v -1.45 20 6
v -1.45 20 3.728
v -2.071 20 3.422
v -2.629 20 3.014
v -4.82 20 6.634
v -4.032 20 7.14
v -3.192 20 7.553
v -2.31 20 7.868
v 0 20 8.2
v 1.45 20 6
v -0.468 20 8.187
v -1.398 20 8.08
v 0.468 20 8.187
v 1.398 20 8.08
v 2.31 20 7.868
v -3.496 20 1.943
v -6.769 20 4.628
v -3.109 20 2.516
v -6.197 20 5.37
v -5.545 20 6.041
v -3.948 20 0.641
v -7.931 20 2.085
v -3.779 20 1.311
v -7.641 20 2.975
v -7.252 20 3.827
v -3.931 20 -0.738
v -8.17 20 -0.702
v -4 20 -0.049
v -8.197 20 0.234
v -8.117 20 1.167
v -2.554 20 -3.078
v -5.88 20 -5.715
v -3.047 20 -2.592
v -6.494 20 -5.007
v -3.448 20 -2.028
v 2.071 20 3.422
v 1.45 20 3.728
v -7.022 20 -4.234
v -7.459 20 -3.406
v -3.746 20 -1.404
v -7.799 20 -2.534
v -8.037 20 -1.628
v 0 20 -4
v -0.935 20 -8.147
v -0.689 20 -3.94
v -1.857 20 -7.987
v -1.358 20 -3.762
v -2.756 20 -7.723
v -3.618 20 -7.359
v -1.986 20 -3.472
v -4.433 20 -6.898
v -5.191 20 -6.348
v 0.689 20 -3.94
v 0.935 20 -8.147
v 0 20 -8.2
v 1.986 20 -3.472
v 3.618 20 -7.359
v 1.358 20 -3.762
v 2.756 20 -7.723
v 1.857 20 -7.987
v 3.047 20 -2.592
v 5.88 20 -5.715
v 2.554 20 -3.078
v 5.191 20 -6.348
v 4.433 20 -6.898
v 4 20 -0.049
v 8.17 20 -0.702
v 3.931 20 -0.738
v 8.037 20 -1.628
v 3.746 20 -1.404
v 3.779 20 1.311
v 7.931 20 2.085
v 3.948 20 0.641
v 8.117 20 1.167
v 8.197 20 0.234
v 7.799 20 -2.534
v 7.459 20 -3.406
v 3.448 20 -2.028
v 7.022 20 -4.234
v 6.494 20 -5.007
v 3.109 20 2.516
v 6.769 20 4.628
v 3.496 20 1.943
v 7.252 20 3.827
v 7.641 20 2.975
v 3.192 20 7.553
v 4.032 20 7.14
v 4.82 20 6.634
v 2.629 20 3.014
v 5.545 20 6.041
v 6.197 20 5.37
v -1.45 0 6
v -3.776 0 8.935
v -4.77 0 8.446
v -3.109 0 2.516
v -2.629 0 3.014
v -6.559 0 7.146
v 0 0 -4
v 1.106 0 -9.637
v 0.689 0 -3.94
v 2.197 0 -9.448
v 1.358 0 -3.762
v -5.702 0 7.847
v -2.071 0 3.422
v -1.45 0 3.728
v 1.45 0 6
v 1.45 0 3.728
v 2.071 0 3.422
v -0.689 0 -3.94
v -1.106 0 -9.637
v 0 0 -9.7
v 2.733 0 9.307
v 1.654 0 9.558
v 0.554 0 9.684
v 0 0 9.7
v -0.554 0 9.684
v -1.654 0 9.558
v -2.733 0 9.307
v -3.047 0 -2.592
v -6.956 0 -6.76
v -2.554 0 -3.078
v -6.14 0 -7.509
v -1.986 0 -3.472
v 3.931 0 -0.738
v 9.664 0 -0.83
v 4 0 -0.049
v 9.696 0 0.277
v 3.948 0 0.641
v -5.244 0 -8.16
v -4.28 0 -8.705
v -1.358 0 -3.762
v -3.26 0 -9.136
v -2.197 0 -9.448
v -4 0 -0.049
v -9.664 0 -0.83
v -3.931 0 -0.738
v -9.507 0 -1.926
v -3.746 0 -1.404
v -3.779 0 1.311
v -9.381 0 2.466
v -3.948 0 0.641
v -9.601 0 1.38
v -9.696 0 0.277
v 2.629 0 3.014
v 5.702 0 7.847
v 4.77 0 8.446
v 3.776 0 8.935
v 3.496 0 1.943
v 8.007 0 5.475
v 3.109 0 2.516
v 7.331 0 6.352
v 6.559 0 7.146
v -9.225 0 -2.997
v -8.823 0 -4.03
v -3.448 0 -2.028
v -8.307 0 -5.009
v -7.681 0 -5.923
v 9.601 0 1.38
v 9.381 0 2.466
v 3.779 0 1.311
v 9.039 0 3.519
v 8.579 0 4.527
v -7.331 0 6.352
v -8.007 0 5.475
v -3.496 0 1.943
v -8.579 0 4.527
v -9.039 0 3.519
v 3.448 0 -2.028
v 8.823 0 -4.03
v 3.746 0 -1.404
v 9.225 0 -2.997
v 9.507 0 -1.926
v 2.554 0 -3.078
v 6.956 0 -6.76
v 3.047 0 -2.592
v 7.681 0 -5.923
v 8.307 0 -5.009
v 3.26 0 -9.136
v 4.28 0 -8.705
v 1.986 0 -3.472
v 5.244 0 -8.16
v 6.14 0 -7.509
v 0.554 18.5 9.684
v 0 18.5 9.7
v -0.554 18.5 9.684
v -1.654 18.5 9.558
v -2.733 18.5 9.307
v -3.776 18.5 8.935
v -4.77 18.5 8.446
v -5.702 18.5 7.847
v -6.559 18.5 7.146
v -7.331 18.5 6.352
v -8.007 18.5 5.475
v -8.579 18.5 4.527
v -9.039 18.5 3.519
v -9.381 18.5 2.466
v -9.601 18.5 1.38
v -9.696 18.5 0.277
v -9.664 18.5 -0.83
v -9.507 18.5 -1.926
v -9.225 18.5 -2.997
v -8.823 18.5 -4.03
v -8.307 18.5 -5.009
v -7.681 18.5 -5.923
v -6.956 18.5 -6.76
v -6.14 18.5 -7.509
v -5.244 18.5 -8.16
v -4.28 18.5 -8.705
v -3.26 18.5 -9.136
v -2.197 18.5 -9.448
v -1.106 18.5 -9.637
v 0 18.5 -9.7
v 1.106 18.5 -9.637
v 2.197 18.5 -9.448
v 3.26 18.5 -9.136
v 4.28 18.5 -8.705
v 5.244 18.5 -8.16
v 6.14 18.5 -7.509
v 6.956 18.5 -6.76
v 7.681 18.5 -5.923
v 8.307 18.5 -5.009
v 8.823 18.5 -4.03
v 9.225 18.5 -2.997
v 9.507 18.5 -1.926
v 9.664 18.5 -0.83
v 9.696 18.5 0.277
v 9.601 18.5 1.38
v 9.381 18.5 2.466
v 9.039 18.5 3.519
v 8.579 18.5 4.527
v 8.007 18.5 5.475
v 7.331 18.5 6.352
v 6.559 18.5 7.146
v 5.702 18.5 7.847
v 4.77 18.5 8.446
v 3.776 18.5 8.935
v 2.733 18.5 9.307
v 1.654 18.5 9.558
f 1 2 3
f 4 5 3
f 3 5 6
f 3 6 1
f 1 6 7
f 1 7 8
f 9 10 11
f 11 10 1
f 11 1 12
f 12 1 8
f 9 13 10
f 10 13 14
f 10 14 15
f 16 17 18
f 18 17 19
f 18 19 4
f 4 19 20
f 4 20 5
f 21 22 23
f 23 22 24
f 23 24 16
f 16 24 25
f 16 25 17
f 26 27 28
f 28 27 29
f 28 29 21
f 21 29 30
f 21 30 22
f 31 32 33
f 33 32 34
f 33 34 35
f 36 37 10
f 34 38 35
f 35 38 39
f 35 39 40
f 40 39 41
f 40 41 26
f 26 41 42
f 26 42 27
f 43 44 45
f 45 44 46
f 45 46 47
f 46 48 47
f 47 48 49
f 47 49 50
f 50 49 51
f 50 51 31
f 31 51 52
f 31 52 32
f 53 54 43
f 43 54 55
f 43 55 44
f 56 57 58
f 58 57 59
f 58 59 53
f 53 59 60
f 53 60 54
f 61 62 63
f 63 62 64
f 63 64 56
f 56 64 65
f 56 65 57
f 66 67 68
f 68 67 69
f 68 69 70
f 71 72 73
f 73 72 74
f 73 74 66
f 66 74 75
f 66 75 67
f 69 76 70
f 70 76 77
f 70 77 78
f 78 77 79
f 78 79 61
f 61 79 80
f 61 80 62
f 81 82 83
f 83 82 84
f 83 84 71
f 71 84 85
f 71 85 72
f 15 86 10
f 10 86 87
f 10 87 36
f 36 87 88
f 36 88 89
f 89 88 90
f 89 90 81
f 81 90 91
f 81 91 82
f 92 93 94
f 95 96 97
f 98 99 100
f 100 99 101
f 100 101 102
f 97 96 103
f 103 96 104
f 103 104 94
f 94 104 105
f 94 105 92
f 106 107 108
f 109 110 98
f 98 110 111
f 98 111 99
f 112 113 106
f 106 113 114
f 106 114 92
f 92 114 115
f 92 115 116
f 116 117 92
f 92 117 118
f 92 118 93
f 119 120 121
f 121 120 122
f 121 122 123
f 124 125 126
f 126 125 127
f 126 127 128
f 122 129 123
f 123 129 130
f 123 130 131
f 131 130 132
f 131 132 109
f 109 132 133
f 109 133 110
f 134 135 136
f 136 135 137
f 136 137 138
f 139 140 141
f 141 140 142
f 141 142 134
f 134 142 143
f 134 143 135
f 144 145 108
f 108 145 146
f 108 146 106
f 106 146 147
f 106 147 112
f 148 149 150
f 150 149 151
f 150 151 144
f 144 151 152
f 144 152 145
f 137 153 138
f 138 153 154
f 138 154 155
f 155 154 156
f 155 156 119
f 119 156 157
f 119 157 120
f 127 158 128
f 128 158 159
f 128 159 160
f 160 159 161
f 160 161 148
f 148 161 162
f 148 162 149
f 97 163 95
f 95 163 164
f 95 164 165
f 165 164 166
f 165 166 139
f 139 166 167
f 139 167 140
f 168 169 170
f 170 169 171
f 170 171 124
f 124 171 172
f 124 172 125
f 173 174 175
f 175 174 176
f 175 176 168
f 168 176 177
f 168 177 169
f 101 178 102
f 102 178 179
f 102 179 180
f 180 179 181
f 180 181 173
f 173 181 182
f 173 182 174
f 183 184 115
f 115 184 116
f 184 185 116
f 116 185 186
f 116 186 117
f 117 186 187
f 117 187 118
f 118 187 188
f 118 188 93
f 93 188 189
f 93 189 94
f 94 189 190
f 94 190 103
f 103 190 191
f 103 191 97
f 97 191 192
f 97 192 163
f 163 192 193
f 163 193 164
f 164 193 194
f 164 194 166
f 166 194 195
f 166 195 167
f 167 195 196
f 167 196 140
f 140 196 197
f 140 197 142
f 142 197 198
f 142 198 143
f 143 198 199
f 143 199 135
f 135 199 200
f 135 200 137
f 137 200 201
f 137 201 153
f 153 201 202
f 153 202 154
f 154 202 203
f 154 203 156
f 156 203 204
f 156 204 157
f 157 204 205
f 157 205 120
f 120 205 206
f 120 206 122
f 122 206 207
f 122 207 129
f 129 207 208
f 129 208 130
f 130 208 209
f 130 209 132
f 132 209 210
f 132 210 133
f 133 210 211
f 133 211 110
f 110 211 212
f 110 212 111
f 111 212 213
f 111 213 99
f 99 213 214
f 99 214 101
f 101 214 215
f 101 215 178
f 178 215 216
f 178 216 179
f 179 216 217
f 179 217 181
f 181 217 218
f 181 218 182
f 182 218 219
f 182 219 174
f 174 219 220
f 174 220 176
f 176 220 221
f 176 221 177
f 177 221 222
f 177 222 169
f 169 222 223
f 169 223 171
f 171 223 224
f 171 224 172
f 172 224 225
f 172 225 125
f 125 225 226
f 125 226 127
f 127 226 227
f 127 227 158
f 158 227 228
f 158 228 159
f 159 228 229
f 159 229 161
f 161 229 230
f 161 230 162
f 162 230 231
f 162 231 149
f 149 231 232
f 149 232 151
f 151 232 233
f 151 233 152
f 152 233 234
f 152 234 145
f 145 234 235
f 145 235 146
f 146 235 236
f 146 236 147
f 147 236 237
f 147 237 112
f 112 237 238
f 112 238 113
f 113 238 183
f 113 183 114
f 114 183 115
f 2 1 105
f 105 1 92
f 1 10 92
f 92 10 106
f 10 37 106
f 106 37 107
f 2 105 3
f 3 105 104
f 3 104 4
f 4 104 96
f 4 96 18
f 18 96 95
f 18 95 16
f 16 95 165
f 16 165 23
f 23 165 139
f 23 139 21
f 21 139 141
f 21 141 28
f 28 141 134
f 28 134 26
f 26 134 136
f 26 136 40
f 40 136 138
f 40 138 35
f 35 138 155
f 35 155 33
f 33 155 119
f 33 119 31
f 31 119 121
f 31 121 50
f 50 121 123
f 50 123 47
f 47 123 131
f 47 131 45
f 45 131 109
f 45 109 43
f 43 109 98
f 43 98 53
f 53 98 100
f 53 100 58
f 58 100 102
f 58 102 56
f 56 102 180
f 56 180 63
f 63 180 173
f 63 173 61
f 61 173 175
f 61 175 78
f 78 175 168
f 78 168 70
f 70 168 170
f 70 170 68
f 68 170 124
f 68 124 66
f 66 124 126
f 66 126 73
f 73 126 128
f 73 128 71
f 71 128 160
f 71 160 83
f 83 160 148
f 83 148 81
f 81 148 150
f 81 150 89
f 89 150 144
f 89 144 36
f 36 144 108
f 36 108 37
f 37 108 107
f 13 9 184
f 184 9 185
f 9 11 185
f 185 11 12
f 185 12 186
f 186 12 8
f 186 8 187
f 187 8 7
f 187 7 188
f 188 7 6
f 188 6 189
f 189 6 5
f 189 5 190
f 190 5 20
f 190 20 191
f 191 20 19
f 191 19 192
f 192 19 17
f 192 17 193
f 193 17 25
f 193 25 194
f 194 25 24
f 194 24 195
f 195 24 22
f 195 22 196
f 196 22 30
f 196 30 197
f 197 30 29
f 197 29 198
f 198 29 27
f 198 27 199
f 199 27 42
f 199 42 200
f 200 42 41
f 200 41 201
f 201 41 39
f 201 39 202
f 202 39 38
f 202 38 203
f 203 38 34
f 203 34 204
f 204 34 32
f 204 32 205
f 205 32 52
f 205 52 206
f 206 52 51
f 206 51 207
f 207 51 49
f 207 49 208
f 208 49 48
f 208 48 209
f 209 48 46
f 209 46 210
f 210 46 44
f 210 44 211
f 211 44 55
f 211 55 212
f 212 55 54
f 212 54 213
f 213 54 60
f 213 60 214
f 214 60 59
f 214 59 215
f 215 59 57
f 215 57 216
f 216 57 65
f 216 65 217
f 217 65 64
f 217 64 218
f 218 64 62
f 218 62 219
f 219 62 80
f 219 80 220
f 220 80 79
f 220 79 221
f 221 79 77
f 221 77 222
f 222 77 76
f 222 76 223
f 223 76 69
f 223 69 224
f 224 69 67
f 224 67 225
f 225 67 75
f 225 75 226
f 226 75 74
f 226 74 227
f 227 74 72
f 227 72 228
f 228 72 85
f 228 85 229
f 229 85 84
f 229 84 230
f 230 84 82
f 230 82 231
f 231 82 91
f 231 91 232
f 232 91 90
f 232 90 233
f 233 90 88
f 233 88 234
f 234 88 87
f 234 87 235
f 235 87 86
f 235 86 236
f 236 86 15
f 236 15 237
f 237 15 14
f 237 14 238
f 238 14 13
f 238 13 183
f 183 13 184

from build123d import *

# Parameters (mm, degrees)
SKETCH1_R           = 9.7
BOSS_EXTRUDE1_DEPTH = 20
CHAMFER1_SIZE       = 1.5


with BuildPart() as part:
    # Sketch1 → Boss-Extrude1 (new body)
    with BuildSketch(Plane(origin=(0, 0, 0), x_dir=(1, 0, 0), z_dir=(0, 1, 0))):
        with Locations(Location((0, 0, 0), (0, 0, 270))):
            Circle(SKETCH1_R)
        with BuildLine():
            Line((-1.45, -6), (1.45, -6))
            Line((1.45, -6), (1.45, -3.727935085))
            ThreePointArc((1.45, -3.727935085), (0, 4), (-1.45, -3.727935085))
            Line((-1.45, -3.727935085), (-1.45, -6))
        make_face(mode=Mode.SUBTRACT)
    extrude(amount=BOSS_EXTRUDE1_DEPTH)

    # Chamfer1
    chamfer1_edges = [part.edges().sort_by_distance(p)[0] for p in [
        (0, 20, -9.7),
    ]]
    chamfer(chamfer1_edges, length=CHAMFER1_SIZE)


solid = part.part
